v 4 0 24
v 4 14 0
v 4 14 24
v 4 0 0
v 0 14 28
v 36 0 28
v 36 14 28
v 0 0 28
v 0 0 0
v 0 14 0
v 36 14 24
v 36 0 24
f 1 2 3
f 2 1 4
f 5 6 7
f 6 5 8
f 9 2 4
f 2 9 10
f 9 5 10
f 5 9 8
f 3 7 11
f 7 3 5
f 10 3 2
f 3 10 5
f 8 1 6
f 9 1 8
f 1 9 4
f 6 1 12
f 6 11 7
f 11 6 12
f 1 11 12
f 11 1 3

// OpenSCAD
// Support demonstration: the same bracket in two print orientations.
// Units: mm. Generate supports in Bambu Studio, not in this source.
// false = long overhang; true = turn the broad face onto the build plate.
flat_face_down = false;
width = 36;
depth = 14;
height = 28;
wall = 4;

module bracket() {
    union() {
        cube([wall, depth, height]);
        translate([0, 0, height-wall])
            cube([width, depth, wall]);
    }
}

if (flat_face_down)
    translate([0, depth, height]) rotate([180, 0, 0]) bracket();
else
    bracket();
